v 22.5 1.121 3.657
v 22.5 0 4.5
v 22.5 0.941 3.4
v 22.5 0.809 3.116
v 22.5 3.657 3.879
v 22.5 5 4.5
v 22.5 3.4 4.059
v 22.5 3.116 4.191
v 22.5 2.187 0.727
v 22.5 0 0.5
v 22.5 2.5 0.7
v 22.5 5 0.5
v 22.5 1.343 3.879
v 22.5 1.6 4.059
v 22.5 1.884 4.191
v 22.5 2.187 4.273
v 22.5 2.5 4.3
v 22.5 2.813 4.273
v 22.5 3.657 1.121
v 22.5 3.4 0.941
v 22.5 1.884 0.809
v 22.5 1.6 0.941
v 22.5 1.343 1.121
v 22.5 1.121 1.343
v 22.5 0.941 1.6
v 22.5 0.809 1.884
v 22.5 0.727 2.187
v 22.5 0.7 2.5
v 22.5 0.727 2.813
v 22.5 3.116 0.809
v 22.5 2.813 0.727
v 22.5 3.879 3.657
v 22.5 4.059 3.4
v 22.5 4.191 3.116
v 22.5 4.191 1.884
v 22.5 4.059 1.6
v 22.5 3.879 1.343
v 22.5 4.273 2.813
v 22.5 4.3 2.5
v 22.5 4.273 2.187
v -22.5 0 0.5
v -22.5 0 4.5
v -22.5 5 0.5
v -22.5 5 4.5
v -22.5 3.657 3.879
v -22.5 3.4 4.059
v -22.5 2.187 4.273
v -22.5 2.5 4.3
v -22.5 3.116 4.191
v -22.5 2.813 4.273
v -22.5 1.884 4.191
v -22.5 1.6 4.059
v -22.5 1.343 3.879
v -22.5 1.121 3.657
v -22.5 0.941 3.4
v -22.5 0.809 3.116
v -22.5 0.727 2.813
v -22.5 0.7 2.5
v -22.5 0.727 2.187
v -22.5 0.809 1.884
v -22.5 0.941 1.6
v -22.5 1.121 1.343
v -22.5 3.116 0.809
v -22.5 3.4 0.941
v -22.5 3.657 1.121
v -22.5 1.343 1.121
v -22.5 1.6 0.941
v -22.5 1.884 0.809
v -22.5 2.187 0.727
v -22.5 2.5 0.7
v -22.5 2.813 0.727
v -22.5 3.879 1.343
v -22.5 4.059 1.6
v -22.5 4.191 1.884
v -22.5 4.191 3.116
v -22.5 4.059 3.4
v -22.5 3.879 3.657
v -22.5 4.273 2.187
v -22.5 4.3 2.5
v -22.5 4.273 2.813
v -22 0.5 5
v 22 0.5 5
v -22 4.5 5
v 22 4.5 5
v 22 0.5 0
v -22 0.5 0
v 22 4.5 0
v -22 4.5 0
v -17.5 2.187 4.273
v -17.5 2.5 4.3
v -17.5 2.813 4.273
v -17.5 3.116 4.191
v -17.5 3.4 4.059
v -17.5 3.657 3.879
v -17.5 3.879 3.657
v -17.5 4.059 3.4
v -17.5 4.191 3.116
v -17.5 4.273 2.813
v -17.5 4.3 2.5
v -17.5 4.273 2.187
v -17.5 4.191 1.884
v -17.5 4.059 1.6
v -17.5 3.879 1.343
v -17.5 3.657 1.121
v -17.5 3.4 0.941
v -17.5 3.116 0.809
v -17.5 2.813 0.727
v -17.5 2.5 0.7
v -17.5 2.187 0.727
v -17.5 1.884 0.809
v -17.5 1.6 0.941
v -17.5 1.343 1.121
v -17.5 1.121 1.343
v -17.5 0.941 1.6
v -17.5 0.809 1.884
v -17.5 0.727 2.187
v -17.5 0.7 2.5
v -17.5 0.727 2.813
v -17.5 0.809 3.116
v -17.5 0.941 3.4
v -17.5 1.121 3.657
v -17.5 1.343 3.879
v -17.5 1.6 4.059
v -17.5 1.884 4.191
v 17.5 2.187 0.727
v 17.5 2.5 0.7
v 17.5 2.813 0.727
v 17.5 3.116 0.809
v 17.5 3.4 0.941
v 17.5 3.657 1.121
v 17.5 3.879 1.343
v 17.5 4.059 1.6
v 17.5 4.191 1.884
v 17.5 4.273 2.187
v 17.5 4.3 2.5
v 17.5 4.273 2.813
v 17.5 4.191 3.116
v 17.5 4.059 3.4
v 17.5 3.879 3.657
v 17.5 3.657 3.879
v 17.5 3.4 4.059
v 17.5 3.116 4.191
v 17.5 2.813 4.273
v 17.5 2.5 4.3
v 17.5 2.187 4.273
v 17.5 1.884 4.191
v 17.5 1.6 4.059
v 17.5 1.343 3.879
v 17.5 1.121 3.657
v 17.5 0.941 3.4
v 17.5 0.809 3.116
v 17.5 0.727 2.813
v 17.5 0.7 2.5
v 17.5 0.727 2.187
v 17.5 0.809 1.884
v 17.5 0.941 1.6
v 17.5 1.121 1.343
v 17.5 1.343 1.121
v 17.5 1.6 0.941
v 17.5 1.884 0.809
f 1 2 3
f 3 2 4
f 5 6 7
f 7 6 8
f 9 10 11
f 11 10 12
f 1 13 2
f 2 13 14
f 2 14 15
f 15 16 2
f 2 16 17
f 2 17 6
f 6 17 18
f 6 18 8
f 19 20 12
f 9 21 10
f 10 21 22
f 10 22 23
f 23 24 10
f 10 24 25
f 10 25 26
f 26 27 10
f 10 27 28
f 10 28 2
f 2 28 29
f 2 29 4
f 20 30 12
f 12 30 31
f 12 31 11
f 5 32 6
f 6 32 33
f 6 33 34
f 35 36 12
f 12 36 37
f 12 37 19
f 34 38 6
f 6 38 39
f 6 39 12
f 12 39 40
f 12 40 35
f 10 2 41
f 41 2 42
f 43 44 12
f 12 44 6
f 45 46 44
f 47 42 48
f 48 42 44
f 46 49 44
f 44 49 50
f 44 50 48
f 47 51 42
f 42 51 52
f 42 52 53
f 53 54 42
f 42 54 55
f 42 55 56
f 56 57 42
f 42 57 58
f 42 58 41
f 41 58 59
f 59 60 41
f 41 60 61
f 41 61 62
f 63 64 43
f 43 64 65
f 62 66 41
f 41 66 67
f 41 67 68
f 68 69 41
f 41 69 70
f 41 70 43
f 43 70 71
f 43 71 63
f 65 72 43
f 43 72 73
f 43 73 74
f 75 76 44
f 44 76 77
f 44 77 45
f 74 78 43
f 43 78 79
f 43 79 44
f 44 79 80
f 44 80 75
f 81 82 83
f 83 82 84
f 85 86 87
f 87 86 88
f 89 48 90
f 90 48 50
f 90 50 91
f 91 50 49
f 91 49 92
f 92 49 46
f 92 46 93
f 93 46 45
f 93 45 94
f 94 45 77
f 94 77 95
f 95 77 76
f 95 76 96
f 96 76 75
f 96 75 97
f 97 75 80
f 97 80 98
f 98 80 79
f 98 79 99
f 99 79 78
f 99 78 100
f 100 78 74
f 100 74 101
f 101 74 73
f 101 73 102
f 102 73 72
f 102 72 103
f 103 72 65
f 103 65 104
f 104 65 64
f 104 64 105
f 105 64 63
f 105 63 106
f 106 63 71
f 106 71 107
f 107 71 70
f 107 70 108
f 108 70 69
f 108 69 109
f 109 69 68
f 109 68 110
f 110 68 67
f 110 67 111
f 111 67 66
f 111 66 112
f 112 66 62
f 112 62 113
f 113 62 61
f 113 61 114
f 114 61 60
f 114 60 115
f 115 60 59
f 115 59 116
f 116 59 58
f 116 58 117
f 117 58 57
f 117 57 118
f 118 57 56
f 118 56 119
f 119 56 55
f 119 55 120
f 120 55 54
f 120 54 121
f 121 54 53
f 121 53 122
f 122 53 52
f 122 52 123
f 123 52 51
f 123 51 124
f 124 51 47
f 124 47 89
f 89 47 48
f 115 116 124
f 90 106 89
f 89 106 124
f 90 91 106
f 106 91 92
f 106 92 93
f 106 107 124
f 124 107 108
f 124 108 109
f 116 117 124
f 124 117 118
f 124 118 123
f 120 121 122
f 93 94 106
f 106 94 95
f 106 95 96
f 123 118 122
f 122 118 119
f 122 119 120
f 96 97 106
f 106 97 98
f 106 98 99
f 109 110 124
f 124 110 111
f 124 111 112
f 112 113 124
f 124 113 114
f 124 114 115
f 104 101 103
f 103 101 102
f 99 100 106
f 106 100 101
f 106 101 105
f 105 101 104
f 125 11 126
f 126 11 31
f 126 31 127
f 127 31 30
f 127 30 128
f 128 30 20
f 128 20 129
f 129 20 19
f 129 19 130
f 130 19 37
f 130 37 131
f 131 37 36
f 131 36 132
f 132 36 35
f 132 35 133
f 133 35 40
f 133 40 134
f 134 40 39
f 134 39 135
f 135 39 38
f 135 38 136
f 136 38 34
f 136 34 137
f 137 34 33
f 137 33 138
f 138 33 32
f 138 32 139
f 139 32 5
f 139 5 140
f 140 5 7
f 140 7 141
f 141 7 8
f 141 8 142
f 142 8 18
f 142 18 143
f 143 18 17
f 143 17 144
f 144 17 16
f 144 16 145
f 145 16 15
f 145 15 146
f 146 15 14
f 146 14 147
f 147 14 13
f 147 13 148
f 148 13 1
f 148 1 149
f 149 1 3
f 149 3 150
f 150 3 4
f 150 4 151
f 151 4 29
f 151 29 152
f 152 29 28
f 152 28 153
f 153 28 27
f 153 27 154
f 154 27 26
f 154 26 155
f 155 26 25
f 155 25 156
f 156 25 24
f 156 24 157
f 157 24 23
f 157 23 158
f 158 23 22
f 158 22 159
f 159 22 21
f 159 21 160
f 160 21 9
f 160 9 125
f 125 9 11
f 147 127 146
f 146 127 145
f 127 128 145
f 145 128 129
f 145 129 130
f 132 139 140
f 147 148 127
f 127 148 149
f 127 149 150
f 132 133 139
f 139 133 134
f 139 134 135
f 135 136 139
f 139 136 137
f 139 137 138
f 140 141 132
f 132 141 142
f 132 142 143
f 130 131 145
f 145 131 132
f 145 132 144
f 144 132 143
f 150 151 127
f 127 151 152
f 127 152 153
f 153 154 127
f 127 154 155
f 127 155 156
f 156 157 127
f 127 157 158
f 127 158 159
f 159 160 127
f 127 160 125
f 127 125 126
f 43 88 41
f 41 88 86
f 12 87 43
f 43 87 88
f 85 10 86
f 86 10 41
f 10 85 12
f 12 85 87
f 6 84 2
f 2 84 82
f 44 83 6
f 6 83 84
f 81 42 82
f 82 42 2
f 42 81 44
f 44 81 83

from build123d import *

# Parameters (mm, degrees)
SKETCH1_W           = 22.5
SKETCH1_H           = 5
BOSS_EXTRUDE1_DEPTH = 5
SKETCH2_R           = 1.8
CUT_EXTRUDE1_DEPTH  = 5
CHAMFER1_SIZE       = 0.5


with BuildPart() as part:
    # Sketch1 → Boss-Extrude1 (new body)
    with BuildSketch(Plane.XY):
        with Locations((-11.25, 2.5)):
            Rectangle(SKETCH1_W, SKETCH1_H)
    boss_extrude1 = extrude(amount=BOSS_EXTRUDE1_DEPTH)

    # Sketch2 → Cut-Extrude1 (cut)
    with BuildSketch(Plane.ZY.offset(22.5)):
        with Locations((2.5, 2.5)):
            Circle(SKETCH2_R)
    cut_extrude1 = extrude(amount=-CUT_EXTRUDE1_DEPTH, mode=Mode.SUBTRACT)

    # Mirror1: Boss-Extrude1, Cut-Extrude1 across plane
    add(boss_extrude1.mirror(Plane(origin=(0, 0, 0), x_dir=(0, 0, 1), z_dir=(1, 0, 0))))
    add(cut_extrude1.mirror(Plane(origin=(0, 0, 0), x_dir=(0, 0, 1), z_dir=(1, 0, 0))), mode=Mode.SUBTRACT)

    # Chamfer1
    chamfer1_edges = [part.edges().sort_by_distance(p)[0] for p in [
        (0, 5, 5),
        (-22.5, 2.5, 5),
        (22.5, 2.5, 5),
        (22.5, 2.5, 0),
        (0, 0, 5),
        (-22.5, 2.5, 0),
        (0, 5, 0),
        (0, 0, 0),
    ]]
    chamfer(chamfer1_edges, length=CHAMFER1_SIZE)


solid = part.part
